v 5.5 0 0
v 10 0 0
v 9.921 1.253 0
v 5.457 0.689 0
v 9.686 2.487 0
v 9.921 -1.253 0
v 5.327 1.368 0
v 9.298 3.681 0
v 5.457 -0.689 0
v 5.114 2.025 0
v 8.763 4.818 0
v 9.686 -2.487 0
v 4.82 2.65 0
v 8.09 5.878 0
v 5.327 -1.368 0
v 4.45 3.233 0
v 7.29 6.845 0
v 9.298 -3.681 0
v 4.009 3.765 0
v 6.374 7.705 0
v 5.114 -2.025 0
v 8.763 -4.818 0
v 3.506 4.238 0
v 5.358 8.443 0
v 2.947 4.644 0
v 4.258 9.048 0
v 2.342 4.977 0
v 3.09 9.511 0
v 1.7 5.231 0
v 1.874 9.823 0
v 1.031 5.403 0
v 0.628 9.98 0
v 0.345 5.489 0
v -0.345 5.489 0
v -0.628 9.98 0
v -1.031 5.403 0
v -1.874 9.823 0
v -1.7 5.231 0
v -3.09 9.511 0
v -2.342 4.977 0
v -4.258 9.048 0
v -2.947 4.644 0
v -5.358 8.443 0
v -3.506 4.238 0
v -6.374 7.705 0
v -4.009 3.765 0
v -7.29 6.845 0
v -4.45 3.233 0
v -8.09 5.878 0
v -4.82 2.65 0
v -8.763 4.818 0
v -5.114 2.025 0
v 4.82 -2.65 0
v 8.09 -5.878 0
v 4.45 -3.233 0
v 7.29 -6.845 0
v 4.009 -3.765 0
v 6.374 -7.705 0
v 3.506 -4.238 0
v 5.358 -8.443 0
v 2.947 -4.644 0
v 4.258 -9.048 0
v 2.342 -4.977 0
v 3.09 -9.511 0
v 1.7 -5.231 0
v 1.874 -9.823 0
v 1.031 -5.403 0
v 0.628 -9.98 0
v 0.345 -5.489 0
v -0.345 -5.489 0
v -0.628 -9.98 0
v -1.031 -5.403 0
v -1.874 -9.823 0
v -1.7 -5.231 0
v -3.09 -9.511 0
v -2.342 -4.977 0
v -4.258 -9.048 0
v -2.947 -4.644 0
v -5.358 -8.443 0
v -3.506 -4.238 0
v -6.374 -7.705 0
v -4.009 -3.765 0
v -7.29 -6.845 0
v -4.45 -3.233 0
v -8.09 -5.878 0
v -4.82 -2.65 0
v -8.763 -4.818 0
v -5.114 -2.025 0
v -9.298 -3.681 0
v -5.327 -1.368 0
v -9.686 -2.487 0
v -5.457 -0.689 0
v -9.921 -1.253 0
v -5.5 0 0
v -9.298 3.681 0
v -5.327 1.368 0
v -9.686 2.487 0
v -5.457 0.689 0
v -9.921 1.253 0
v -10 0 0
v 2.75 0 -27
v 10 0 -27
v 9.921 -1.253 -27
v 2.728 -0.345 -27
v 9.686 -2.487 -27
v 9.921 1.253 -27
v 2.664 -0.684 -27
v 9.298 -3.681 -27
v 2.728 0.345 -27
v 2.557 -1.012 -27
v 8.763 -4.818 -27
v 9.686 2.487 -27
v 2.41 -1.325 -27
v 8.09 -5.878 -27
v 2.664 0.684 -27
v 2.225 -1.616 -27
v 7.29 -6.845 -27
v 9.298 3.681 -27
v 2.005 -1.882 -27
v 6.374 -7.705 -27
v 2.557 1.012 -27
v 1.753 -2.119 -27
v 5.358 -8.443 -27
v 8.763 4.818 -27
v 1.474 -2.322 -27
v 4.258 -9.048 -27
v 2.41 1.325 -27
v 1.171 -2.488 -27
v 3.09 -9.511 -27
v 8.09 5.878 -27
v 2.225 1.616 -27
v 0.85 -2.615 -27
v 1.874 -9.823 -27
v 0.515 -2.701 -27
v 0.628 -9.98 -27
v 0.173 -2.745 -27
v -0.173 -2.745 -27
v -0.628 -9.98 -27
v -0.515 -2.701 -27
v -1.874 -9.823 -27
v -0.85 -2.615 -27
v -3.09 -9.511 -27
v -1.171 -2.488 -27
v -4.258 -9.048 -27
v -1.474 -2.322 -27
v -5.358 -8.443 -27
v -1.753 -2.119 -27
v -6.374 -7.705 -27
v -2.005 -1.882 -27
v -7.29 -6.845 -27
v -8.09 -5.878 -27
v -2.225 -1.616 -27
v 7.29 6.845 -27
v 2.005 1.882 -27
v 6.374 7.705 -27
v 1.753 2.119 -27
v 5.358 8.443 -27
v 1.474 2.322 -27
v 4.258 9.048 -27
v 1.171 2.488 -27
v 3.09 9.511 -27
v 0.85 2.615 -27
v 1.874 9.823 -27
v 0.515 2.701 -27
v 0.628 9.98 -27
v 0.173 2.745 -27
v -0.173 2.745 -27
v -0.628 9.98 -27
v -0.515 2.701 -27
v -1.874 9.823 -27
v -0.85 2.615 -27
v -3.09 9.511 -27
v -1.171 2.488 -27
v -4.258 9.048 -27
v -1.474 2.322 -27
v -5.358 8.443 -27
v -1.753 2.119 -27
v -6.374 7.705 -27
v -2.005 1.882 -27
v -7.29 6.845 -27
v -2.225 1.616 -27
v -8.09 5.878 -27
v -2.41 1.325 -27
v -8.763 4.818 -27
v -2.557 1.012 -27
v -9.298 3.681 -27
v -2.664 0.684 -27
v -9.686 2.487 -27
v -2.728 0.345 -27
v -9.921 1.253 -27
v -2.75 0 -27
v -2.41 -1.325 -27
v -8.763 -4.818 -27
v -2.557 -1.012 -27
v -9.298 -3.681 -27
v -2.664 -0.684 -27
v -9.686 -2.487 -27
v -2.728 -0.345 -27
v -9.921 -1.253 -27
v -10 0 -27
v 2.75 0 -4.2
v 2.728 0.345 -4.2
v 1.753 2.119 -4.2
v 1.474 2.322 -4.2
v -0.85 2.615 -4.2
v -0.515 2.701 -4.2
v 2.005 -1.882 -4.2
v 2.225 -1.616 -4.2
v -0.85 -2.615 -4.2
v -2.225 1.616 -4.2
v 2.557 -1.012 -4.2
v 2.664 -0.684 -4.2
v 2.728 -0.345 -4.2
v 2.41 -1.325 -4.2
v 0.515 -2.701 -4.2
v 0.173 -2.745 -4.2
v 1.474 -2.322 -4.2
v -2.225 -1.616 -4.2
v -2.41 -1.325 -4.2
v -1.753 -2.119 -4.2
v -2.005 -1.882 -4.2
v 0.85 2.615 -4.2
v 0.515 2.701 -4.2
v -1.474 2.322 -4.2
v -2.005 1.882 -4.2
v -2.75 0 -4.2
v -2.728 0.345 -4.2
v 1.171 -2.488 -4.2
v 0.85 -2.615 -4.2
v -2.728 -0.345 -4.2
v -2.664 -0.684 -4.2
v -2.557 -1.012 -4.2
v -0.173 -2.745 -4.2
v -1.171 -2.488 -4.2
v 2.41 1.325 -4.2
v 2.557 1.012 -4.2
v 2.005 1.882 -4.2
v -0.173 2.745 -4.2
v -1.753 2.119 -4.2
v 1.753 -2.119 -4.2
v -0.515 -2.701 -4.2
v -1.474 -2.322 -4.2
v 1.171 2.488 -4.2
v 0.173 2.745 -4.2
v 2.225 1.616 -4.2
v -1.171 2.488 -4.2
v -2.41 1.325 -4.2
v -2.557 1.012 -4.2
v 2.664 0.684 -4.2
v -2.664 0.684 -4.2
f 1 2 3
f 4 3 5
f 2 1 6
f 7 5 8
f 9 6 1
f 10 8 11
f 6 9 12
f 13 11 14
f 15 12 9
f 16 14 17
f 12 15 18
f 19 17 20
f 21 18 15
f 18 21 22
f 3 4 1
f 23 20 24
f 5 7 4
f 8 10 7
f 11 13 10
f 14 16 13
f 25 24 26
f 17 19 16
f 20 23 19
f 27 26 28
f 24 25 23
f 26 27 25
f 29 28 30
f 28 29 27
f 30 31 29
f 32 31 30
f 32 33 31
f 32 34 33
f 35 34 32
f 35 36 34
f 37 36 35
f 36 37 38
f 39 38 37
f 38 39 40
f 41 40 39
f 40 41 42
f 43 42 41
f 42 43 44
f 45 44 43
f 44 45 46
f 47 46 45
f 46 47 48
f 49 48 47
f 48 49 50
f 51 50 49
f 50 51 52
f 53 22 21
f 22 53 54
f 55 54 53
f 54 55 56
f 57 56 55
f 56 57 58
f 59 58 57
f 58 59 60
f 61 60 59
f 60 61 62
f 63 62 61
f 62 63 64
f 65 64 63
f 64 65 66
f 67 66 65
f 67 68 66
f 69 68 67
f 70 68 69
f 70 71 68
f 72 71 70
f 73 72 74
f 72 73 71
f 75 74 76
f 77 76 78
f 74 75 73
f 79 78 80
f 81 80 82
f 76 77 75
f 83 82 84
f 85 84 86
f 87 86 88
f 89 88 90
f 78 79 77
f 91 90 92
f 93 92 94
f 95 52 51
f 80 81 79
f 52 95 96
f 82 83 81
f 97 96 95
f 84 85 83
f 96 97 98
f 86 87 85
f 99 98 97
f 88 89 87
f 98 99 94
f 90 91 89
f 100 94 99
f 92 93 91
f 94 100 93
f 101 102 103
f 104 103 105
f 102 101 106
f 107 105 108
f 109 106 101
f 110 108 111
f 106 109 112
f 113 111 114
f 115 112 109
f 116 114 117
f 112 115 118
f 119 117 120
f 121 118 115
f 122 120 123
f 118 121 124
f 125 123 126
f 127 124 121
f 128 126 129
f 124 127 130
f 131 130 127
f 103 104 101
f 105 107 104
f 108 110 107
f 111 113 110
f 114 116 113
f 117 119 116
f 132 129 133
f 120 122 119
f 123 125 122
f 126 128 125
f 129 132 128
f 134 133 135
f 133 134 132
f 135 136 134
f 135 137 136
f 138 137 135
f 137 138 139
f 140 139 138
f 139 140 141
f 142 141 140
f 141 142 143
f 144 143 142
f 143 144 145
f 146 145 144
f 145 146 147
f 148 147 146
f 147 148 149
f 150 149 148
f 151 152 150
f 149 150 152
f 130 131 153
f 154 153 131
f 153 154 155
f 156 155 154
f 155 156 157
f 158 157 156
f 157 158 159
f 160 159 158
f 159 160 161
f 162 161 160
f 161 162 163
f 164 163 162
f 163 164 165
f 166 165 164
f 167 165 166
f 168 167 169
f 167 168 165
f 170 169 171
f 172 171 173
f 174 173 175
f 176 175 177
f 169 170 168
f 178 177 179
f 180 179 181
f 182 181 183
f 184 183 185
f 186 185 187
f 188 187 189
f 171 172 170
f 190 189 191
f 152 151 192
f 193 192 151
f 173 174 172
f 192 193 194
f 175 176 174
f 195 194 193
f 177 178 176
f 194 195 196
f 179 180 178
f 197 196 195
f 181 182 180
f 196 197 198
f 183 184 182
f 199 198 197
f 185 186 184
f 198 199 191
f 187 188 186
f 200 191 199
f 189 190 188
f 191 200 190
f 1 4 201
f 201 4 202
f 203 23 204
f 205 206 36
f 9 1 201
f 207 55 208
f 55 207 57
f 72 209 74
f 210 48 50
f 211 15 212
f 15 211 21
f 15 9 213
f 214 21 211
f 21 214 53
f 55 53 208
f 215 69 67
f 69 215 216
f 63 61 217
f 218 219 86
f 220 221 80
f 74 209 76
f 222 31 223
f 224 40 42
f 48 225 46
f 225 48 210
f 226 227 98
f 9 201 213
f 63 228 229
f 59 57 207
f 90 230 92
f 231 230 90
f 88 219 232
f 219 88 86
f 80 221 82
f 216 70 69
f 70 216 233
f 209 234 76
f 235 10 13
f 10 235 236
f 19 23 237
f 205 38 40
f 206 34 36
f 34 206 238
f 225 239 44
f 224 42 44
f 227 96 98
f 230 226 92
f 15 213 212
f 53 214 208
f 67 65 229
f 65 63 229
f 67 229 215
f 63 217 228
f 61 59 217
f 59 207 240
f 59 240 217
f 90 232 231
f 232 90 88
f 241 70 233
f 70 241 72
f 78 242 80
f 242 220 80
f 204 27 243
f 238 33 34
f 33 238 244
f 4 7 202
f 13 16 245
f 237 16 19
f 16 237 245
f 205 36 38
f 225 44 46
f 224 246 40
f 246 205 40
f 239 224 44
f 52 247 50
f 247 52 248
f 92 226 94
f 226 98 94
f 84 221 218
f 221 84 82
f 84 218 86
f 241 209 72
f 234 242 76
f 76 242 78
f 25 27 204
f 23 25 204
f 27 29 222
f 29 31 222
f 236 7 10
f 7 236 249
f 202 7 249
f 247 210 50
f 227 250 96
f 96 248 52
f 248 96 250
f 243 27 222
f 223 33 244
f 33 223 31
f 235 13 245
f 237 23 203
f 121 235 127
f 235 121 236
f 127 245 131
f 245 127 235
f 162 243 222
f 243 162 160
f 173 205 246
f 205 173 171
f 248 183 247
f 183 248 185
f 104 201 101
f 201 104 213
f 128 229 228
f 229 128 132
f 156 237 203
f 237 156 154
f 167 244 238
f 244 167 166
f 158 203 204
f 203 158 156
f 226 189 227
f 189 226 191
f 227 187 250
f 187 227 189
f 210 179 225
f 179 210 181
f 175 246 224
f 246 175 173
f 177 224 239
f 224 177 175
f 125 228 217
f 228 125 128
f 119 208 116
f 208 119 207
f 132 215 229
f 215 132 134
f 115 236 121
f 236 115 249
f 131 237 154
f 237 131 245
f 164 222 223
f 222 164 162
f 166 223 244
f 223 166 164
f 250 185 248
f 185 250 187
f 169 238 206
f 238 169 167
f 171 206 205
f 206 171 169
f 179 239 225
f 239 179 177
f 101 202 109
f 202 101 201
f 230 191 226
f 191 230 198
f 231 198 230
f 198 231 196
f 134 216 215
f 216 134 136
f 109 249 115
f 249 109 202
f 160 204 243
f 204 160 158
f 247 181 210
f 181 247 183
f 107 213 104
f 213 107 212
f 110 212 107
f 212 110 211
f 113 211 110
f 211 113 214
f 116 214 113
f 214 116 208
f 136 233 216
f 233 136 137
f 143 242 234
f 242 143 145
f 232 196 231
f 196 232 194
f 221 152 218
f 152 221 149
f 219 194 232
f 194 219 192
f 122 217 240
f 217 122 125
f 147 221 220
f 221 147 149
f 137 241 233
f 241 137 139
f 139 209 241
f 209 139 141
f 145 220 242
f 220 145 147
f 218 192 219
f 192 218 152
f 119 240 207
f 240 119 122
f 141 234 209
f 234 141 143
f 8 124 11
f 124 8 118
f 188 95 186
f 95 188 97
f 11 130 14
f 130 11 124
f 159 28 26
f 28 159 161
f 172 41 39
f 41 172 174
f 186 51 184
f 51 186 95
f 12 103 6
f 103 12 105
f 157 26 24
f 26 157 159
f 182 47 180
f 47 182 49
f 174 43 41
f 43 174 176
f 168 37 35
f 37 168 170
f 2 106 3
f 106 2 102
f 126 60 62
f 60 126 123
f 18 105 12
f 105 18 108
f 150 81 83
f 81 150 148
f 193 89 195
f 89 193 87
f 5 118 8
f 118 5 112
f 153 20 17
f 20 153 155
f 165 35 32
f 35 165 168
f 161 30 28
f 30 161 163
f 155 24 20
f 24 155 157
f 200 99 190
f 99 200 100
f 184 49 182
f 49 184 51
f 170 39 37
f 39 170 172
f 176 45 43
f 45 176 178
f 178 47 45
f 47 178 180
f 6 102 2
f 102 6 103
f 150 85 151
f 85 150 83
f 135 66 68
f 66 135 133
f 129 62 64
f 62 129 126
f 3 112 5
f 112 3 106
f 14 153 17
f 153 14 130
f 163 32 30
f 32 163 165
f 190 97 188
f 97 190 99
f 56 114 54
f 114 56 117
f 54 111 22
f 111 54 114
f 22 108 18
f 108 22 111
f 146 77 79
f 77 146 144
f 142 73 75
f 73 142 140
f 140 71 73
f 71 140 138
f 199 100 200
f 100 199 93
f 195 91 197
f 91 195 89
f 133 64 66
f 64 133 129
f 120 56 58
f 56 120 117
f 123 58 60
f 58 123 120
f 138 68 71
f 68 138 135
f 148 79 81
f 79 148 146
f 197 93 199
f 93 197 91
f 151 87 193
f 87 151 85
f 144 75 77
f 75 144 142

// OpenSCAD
$fn = 50;


difference() {
	union() {
		translate(v = [0, 0, -27.0000000000]) {
			cylinder(h = 27, r = 10.0000000000);
		}
		cylinder(h = 0, r = 19.0000000000);
	}
	union() {
		translate(v = [0, 0, 0]) {
			rotate(a = [0, 0, 0]) {
				difference() {
					union() {
						#translate(v = [0, 0, -27.0000000000]) {
							cylinder(h = 27, r = 2.2500000000);
						}
						#translate(v = [0, 0, -4.2000000000]) {
							cylinder(h = 4.2000000000, r1 = 2.7500000000, r2 = 5.5000000000);
						}
						#translate(v = [0, 0, -27.0000000000]) {
							cylinder(h = 27, r = 2.7500000000);
						}
						#translate(v = [0, 0, -27.0000000000]) {
							cylinder(h = 27, r = 2.2500000000);
						}
					}
					union();
				}
			}
		}
	}
}
